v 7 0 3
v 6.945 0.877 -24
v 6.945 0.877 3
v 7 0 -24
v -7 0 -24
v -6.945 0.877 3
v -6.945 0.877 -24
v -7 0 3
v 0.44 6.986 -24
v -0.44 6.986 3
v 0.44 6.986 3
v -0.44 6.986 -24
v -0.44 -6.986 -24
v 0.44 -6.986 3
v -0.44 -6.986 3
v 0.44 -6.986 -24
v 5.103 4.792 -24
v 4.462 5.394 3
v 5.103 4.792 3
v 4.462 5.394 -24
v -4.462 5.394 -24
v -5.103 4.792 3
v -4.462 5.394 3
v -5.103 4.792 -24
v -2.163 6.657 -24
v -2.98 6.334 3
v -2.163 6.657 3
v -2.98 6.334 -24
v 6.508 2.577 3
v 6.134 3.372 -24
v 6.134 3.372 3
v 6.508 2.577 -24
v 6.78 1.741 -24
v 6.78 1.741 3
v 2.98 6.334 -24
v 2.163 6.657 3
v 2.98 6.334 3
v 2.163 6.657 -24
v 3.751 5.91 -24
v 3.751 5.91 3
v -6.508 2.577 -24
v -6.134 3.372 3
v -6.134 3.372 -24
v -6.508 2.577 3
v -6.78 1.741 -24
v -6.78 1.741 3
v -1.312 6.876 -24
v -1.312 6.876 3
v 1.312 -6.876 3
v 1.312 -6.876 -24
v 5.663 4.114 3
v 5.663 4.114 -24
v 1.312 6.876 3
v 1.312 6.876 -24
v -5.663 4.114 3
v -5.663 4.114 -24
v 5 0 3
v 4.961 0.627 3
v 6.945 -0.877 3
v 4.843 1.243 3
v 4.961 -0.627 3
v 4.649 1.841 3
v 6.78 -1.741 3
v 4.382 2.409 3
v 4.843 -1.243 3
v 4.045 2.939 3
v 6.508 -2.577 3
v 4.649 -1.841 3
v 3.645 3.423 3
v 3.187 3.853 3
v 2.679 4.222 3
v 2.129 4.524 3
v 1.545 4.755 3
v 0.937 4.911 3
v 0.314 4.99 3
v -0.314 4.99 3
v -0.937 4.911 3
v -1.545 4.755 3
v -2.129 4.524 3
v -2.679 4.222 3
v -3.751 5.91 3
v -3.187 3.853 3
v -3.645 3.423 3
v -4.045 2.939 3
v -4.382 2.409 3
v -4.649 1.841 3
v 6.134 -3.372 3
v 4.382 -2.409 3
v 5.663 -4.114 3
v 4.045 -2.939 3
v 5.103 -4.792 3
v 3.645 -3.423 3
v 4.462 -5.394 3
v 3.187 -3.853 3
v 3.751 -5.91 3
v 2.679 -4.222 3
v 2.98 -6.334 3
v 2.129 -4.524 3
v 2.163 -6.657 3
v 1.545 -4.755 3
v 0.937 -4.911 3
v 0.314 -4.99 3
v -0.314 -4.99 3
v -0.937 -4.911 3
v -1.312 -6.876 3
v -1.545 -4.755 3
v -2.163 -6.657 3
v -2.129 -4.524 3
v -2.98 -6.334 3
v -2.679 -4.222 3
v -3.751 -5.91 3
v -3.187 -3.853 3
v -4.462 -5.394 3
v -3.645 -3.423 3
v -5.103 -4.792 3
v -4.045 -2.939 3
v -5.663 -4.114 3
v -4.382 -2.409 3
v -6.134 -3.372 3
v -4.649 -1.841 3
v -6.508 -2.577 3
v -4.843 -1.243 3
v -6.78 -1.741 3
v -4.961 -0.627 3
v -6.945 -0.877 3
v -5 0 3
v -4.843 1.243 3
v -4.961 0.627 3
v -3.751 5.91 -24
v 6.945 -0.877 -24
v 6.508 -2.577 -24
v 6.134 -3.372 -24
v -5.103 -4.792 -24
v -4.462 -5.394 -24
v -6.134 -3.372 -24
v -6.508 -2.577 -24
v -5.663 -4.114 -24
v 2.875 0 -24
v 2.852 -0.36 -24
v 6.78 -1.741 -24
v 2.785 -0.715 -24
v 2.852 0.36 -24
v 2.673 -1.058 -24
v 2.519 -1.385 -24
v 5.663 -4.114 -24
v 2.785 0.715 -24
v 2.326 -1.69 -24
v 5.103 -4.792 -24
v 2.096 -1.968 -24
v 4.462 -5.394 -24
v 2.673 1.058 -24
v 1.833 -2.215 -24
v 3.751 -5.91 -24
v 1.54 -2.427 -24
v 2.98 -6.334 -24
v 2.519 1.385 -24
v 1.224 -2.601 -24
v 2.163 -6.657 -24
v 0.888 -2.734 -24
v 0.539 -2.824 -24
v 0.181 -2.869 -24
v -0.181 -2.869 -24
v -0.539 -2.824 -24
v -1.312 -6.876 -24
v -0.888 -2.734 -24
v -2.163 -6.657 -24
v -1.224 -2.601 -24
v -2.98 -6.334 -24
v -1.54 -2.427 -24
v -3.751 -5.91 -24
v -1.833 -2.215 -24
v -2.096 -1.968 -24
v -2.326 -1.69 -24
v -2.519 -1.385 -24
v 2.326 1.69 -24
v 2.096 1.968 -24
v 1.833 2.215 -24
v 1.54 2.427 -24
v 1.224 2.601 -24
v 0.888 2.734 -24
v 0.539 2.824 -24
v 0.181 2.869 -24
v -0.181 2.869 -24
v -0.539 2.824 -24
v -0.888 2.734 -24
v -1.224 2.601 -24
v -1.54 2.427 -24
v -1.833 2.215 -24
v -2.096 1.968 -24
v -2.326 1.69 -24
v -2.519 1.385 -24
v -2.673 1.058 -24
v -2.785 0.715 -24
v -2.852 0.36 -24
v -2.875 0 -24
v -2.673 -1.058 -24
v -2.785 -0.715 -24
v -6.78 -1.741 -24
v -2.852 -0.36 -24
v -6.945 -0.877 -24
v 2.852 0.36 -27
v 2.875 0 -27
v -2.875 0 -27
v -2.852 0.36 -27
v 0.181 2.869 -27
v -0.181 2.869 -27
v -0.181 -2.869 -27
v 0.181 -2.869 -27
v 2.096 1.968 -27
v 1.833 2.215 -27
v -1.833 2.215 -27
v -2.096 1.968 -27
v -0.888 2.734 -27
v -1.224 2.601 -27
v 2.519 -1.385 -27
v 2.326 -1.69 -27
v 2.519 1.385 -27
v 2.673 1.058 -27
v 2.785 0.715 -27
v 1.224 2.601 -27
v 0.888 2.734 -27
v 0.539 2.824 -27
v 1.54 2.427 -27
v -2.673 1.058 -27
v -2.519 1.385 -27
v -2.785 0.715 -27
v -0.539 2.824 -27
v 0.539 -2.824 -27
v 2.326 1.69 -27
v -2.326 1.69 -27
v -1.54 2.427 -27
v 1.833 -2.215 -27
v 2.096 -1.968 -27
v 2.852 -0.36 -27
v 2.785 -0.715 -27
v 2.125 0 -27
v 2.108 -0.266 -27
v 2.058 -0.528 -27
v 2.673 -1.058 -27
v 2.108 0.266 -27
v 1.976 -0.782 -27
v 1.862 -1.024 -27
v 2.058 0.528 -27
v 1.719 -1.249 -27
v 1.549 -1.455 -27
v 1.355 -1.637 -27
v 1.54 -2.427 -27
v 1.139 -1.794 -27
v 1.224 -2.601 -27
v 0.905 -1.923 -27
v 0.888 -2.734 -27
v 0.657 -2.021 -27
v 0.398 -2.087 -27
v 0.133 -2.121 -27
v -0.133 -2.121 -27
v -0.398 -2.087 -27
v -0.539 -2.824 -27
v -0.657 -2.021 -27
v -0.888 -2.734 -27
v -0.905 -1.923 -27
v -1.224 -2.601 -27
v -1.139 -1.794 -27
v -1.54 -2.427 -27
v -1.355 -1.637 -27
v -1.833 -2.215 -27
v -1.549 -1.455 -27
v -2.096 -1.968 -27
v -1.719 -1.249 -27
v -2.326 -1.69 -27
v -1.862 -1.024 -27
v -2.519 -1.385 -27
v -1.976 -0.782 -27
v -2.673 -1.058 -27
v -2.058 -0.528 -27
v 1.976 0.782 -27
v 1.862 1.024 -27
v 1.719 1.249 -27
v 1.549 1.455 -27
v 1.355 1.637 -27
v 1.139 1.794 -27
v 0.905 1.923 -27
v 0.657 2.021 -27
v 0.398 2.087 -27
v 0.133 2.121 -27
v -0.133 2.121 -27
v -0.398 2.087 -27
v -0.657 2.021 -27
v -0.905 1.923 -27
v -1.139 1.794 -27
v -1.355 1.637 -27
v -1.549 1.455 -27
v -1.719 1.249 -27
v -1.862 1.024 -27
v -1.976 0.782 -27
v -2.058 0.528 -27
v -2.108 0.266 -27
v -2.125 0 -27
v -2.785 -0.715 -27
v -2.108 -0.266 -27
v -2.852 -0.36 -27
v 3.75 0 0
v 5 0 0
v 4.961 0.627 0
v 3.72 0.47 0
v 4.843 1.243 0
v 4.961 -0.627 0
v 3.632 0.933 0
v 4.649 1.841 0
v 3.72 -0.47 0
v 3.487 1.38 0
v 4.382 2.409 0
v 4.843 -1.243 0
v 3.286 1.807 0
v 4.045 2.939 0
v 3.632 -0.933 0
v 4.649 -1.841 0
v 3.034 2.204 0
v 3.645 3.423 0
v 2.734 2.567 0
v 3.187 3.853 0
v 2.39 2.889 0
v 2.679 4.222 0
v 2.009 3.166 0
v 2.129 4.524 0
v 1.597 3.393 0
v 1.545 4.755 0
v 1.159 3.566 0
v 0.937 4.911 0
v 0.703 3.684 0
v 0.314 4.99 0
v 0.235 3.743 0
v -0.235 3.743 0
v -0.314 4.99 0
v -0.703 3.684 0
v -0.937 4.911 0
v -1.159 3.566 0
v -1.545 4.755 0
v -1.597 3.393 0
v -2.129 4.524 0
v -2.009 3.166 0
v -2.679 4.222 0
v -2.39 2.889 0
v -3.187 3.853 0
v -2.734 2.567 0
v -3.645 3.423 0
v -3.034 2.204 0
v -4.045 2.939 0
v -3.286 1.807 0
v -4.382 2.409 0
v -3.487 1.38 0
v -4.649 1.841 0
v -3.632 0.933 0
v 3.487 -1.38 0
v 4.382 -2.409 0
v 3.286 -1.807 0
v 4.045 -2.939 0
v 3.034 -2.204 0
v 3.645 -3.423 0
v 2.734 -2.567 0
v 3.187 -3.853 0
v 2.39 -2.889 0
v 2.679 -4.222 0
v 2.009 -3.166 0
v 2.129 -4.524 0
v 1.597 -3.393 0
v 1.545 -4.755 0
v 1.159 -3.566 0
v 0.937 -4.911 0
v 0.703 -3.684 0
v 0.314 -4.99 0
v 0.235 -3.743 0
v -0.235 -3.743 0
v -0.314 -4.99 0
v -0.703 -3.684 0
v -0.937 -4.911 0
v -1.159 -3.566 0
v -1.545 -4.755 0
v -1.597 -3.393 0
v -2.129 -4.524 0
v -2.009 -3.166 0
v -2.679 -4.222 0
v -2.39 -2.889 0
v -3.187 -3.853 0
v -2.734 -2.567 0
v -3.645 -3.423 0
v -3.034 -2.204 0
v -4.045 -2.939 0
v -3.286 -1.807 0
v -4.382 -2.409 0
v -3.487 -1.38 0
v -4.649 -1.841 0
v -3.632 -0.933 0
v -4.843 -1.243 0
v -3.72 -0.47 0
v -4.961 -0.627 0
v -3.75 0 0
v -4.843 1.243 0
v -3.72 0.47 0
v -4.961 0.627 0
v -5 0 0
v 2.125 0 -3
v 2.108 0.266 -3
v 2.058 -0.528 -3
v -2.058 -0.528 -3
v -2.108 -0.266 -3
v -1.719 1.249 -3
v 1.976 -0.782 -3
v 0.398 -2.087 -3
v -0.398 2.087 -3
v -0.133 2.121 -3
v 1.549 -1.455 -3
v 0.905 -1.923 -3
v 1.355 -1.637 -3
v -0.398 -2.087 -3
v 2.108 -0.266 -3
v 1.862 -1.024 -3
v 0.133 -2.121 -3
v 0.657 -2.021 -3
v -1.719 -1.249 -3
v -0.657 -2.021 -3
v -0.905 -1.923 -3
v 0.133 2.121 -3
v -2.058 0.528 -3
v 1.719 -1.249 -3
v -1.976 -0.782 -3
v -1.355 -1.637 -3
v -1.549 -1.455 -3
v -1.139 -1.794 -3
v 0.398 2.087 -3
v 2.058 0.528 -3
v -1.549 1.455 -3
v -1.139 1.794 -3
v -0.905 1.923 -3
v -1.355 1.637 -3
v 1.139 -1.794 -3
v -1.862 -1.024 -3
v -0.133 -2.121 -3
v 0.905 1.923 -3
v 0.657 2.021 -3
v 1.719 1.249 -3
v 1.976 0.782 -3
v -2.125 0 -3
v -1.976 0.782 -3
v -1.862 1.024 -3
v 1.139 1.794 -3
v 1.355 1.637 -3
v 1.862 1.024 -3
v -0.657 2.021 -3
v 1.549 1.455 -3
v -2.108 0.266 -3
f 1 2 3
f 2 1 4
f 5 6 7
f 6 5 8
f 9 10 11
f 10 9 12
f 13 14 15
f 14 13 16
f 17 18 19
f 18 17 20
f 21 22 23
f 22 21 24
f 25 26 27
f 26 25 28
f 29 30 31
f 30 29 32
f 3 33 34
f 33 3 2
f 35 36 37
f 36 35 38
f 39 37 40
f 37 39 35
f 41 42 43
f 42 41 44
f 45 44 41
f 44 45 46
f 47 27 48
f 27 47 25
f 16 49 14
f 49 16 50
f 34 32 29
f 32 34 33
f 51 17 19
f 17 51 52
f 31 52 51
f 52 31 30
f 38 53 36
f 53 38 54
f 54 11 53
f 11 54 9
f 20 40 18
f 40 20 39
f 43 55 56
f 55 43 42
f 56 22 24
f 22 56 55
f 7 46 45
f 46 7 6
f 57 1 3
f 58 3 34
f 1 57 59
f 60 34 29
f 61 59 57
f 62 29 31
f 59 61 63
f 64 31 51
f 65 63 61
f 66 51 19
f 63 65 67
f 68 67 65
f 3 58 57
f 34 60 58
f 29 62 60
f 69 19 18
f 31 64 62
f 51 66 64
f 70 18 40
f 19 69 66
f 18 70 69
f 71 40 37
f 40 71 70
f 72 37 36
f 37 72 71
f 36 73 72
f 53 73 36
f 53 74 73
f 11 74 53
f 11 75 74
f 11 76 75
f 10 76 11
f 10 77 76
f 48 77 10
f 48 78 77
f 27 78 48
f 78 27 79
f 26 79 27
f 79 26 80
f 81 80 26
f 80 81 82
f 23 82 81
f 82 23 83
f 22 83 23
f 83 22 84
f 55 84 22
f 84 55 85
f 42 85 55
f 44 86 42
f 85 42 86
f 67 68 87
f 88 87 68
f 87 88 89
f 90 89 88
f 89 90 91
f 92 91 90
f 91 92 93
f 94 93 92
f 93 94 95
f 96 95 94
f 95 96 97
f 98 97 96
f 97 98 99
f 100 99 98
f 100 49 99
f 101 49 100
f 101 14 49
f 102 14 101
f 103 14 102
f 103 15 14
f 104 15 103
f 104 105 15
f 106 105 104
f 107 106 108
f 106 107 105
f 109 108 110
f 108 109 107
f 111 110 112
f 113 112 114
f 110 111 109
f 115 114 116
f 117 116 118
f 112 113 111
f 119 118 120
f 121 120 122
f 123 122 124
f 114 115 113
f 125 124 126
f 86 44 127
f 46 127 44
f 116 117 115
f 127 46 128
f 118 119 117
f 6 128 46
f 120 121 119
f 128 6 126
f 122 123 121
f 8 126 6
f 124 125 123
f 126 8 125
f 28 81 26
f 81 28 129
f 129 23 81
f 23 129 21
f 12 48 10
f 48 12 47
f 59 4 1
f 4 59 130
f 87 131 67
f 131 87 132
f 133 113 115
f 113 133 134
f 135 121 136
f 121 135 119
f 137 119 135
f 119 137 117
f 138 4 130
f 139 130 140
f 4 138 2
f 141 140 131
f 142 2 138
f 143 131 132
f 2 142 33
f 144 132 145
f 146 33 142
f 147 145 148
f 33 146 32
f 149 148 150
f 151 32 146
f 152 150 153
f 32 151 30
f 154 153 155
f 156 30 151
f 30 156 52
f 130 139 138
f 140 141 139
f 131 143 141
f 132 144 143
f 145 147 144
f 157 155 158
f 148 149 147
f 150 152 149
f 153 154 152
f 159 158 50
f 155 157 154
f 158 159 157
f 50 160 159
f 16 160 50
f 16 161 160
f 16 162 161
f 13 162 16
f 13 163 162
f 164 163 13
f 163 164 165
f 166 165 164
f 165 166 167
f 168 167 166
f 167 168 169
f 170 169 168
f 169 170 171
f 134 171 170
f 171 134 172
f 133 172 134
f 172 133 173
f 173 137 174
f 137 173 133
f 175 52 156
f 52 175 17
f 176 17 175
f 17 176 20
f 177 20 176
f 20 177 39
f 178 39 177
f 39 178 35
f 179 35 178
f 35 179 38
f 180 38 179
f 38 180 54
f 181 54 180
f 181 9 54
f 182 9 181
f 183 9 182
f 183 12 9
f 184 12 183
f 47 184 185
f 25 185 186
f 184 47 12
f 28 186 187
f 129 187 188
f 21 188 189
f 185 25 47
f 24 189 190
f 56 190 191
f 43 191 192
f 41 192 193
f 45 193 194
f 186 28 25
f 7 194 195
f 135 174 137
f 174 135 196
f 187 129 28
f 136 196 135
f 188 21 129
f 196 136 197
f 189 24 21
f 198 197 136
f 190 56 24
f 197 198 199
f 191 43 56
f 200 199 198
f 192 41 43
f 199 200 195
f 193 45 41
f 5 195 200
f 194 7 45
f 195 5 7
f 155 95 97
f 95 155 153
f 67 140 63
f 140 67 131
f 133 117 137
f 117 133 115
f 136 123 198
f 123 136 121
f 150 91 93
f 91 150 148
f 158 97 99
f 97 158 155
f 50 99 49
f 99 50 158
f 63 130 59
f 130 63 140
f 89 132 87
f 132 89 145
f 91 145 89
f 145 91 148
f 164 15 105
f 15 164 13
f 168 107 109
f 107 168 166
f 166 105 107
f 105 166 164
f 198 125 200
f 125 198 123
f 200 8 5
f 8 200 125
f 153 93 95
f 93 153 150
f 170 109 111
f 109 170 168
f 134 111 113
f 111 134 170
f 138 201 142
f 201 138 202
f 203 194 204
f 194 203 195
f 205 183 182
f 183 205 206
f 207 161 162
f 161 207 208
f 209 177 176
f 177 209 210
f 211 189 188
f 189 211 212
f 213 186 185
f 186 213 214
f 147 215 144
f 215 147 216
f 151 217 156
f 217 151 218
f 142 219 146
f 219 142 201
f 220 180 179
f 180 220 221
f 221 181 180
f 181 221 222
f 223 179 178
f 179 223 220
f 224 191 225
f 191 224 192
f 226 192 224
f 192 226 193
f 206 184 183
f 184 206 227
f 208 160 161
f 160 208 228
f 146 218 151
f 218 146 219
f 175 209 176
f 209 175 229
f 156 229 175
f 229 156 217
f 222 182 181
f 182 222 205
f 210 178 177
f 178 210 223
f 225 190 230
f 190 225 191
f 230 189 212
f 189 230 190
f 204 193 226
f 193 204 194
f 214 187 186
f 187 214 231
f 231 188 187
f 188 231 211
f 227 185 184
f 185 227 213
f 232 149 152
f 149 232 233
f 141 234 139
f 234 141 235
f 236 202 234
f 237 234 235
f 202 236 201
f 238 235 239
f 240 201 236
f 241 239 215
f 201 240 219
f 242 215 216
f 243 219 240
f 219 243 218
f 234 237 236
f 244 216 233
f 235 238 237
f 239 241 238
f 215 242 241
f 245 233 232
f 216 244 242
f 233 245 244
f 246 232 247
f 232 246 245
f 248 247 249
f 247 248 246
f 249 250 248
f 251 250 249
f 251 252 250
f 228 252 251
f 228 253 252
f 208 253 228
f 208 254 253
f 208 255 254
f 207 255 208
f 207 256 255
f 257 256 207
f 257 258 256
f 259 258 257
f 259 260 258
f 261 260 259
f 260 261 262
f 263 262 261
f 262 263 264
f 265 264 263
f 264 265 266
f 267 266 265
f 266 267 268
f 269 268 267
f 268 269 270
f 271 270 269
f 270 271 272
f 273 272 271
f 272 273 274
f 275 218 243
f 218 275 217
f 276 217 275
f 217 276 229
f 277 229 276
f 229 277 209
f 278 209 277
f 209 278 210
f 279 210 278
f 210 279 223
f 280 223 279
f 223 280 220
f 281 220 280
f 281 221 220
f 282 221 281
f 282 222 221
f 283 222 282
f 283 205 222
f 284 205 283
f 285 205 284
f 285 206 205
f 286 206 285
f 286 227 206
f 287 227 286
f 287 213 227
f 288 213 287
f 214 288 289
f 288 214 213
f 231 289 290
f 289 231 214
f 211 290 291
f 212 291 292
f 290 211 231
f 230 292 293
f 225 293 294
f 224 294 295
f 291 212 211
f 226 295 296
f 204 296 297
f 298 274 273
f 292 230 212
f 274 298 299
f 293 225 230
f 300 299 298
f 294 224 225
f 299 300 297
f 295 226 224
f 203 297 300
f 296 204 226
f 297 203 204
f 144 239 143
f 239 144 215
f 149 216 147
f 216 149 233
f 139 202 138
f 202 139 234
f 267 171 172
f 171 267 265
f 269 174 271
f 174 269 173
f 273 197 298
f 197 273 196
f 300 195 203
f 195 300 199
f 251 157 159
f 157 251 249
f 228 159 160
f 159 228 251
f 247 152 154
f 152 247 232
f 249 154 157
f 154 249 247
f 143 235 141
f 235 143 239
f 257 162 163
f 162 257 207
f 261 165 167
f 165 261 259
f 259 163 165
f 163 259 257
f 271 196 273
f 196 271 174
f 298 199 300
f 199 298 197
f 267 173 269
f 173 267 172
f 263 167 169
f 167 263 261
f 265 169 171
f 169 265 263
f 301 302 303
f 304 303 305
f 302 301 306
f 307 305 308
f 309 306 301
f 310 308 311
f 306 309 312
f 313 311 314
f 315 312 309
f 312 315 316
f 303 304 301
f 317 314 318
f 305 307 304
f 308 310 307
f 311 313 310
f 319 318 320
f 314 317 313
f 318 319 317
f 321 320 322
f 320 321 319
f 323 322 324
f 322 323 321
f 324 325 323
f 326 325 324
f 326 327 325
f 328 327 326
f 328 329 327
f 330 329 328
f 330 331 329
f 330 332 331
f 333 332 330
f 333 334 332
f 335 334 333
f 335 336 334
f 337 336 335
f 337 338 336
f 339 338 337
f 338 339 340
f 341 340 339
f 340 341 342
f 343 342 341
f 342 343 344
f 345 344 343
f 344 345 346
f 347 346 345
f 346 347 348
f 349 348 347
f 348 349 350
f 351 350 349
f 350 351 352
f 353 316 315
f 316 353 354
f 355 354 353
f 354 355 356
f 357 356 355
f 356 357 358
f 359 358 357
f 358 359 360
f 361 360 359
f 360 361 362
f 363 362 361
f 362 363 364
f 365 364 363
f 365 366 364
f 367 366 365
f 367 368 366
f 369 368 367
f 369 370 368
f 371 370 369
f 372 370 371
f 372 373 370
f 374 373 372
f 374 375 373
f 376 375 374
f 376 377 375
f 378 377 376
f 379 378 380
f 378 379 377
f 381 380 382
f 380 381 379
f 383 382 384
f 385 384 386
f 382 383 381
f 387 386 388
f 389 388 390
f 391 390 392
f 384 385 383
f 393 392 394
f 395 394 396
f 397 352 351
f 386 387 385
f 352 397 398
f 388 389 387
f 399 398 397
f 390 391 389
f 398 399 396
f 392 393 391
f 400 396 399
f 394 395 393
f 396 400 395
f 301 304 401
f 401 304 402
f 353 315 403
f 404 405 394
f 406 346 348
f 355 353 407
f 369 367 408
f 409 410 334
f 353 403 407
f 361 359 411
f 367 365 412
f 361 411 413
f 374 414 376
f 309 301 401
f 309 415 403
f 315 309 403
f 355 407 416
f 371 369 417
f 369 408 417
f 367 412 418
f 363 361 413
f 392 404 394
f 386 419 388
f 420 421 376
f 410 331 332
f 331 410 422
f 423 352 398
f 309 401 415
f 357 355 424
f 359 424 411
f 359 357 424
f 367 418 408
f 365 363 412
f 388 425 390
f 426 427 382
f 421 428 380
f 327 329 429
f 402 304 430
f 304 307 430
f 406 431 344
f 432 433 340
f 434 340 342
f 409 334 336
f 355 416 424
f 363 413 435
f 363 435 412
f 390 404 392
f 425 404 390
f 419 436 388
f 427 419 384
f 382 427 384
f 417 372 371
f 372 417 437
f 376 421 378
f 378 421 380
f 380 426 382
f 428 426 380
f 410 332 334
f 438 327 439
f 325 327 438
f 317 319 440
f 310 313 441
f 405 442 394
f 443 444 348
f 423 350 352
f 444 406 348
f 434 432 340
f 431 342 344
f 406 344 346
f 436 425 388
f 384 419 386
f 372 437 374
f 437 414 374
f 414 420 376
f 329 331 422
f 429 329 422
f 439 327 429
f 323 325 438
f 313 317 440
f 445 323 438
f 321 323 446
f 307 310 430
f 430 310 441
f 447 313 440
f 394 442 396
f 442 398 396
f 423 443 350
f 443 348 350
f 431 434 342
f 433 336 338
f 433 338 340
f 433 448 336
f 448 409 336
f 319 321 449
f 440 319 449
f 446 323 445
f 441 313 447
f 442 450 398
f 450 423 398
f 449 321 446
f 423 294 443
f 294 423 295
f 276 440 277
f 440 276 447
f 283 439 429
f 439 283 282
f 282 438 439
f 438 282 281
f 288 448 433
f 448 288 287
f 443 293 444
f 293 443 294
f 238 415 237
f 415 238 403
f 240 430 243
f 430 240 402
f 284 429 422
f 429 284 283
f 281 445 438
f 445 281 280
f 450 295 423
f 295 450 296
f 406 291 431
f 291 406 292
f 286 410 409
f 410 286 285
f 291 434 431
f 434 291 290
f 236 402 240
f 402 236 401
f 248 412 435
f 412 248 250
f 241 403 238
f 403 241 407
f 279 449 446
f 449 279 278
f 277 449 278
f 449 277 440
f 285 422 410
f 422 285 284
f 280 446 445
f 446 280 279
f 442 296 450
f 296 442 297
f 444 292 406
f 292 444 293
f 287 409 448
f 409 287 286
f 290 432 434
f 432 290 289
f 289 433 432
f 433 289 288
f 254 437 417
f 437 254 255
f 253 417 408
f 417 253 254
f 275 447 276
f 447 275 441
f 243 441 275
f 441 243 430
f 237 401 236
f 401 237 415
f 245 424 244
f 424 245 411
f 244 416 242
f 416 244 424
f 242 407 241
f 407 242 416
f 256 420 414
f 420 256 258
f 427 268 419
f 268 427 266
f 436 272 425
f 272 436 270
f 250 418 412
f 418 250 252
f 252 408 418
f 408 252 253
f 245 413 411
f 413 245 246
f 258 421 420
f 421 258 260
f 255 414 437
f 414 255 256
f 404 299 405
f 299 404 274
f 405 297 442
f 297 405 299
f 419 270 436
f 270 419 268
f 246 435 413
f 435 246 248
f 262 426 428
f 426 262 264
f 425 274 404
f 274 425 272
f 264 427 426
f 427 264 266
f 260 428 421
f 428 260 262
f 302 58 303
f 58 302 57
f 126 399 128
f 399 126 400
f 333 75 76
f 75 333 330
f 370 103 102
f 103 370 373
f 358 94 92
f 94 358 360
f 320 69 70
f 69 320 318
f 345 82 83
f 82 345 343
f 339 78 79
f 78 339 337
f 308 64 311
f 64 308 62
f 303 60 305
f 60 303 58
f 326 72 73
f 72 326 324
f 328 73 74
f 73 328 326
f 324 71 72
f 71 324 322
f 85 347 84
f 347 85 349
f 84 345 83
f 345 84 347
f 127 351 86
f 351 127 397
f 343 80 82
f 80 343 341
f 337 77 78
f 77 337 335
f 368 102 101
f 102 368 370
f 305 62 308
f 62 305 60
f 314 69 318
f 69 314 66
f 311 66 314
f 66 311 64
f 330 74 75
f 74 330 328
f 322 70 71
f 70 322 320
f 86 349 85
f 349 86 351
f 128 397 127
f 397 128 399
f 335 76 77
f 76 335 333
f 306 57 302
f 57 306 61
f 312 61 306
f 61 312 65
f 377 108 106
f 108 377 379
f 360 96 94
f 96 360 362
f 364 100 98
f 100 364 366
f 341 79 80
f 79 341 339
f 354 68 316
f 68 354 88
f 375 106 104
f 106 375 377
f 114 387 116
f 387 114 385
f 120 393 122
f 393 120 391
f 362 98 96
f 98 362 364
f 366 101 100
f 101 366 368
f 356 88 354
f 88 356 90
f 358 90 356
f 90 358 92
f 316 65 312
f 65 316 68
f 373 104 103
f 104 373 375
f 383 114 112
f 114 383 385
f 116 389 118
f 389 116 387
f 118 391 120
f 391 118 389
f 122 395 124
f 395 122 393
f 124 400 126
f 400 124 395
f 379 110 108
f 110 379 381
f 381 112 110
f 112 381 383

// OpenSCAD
$fn = 50;


difference() {
	union() {
		translate(v = [0, 0, -24.0000000000]) {
			cylinder(h = 27, r = 7.0000000000);
		}
		#translate(v = [0, 0, -27.0000000000]) {
			cylinder(h = 27, r = 2.8750000000);
		}
	}
	union() {
		translate(v = [0, 0, 0]) {
			rotate(a = [0, 0, 0]) {
				difference() {
					union() {
						translate(v = [0, 0, -27.0000000000]) {
							cylinder(h = 27, r = 2.0000000000);
						}
						translate(v = [0, 0, -3]) {
							cylinder(h = 3, r1 = 2.1250000000, r2 = 3.7500000000);
						}
						translate(v = [0, 0, -27.0000000000]) {
							cylinder(h = 27, r = 2.1250000000);
						}
						translate(v = [0, 0, -27.0000000000]) {
							cylinder(h = 27, r = 2.0000000000);
						}
					}
					union();
				}
			}
		}
		#cylinder(h = 3, r = 5.0000000000);
	}
}
